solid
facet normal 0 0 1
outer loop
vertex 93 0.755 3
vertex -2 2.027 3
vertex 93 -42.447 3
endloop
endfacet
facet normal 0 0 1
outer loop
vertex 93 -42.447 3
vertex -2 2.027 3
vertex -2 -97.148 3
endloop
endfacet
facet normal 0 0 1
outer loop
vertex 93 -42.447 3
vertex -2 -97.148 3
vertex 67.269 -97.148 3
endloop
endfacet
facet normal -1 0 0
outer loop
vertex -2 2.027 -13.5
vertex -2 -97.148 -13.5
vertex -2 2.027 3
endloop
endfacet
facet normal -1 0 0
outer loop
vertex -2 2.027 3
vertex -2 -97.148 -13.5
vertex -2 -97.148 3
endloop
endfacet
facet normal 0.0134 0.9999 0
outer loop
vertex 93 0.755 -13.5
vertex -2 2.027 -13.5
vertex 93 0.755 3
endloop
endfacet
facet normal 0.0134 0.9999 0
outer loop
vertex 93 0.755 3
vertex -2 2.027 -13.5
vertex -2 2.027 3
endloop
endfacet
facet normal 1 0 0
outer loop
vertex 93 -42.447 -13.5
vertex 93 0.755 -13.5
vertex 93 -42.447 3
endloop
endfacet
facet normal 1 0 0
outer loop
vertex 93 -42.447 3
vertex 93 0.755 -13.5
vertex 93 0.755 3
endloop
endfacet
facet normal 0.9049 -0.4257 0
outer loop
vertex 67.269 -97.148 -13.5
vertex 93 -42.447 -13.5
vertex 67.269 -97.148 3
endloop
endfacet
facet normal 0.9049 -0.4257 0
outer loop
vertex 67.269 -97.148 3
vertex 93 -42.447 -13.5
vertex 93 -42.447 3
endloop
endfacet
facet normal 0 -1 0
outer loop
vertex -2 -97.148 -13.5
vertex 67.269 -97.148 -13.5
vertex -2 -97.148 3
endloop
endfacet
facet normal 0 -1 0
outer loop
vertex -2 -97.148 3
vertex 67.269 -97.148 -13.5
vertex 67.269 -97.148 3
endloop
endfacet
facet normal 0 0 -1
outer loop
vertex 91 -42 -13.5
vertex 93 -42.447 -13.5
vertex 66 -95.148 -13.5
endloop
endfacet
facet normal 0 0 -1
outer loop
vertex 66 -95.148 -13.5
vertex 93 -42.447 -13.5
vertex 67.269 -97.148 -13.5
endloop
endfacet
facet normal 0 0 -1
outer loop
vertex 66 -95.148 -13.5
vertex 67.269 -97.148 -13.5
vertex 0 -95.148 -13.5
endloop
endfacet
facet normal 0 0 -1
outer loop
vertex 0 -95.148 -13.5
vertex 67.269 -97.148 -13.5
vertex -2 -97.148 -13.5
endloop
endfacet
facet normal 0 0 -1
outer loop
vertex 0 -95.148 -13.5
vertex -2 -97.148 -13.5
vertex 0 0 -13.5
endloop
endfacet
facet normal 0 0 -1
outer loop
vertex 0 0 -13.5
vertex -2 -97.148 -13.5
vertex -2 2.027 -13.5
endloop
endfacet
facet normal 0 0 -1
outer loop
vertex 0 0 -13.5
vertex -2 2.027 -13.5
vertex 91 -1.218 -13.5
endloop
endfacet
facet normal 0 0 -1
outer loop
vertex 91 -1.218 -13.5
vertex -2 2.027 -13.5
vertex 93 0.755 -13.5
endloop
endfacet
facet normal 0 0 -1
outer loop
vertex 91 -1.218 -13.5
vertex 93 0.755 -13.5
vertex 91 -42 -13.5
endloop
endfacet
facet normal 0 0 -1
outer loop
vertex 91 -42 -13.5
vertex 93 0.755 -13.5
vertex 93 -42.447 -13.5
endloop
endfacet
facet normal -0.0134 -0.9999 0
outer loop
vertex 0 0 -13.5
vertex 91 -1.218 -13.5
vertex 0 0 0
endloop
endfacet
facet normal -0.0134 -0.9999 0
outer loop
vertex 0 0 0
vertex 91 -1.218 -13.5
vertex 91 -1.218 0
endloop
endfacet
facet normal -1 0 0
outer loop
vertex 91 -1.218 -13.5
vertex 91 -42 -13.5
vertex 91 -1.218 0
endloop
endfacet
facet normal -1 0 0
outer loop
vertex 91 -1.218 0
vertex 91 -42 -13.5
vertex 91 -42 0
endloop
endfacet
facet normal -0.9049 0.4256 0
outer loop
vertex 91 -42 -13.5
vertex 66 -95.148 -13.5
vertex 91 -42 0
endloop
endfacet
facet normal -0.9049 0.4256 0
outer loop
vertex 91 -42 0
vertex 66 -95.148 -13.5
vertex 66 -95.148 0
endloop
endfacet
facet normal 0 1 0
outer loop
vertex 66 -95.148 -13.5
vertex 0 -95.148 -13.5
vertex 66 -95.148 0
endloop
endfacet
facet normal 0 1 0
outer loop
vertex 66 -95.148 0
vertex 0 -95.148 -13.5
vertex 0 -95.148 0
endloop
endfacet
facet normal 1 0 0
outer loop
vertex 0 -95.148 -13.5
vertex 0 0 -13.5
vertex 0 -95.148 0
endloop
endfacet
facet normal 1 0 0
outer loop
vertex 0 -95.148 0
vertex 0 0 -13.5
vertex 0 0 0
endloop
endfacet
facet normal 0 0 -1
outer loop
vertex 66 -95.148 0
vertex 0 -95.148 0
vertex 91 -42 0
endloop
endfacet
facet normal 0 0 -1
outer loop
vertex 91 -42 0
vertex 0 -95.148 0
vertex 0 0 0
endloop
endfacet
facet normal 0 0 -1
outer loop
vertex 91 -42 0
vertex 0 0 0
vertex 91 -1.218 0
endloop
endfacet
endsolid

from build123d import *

# Parameters (mm, degrees)
BOSS_EXTRUDE1_DEPTH = 3
BOSS_EXTRUDE2_DEPTH = 16.5


with BuildPart() as part:
    # Sketch1 → Boss-Extrude1 (new body)
    with BuildSketch(Plane.XY):
        Polygon((0, 0), (91, -1.218180248), (91, -42), (66, -95.148154165), (0, -95.148154165), (0, -42), align=None)
    extrude(amount=BOSS_EXTRUDE1_DEPTH)

    # Sketch2 → Boss-Extrude2 (add)
    with BuildSketch(Plane.XY.offset(3)):
        Polygon((-2, -97.148154165), (67.269446555, -97.148154165), (93, -42.446897316), (93, 0.755225752), (-2, 2.026952385), align=None)
        Polygon((66, -95.148154165), (91, -42), (91, -1.218180248), (0, 0), (0, -95.148154165), align=None, mode=Mode.SUBTRACT)
    extrude(amount=-BOSS_EXTRUDE2_DEPTH)


solid = part.part
